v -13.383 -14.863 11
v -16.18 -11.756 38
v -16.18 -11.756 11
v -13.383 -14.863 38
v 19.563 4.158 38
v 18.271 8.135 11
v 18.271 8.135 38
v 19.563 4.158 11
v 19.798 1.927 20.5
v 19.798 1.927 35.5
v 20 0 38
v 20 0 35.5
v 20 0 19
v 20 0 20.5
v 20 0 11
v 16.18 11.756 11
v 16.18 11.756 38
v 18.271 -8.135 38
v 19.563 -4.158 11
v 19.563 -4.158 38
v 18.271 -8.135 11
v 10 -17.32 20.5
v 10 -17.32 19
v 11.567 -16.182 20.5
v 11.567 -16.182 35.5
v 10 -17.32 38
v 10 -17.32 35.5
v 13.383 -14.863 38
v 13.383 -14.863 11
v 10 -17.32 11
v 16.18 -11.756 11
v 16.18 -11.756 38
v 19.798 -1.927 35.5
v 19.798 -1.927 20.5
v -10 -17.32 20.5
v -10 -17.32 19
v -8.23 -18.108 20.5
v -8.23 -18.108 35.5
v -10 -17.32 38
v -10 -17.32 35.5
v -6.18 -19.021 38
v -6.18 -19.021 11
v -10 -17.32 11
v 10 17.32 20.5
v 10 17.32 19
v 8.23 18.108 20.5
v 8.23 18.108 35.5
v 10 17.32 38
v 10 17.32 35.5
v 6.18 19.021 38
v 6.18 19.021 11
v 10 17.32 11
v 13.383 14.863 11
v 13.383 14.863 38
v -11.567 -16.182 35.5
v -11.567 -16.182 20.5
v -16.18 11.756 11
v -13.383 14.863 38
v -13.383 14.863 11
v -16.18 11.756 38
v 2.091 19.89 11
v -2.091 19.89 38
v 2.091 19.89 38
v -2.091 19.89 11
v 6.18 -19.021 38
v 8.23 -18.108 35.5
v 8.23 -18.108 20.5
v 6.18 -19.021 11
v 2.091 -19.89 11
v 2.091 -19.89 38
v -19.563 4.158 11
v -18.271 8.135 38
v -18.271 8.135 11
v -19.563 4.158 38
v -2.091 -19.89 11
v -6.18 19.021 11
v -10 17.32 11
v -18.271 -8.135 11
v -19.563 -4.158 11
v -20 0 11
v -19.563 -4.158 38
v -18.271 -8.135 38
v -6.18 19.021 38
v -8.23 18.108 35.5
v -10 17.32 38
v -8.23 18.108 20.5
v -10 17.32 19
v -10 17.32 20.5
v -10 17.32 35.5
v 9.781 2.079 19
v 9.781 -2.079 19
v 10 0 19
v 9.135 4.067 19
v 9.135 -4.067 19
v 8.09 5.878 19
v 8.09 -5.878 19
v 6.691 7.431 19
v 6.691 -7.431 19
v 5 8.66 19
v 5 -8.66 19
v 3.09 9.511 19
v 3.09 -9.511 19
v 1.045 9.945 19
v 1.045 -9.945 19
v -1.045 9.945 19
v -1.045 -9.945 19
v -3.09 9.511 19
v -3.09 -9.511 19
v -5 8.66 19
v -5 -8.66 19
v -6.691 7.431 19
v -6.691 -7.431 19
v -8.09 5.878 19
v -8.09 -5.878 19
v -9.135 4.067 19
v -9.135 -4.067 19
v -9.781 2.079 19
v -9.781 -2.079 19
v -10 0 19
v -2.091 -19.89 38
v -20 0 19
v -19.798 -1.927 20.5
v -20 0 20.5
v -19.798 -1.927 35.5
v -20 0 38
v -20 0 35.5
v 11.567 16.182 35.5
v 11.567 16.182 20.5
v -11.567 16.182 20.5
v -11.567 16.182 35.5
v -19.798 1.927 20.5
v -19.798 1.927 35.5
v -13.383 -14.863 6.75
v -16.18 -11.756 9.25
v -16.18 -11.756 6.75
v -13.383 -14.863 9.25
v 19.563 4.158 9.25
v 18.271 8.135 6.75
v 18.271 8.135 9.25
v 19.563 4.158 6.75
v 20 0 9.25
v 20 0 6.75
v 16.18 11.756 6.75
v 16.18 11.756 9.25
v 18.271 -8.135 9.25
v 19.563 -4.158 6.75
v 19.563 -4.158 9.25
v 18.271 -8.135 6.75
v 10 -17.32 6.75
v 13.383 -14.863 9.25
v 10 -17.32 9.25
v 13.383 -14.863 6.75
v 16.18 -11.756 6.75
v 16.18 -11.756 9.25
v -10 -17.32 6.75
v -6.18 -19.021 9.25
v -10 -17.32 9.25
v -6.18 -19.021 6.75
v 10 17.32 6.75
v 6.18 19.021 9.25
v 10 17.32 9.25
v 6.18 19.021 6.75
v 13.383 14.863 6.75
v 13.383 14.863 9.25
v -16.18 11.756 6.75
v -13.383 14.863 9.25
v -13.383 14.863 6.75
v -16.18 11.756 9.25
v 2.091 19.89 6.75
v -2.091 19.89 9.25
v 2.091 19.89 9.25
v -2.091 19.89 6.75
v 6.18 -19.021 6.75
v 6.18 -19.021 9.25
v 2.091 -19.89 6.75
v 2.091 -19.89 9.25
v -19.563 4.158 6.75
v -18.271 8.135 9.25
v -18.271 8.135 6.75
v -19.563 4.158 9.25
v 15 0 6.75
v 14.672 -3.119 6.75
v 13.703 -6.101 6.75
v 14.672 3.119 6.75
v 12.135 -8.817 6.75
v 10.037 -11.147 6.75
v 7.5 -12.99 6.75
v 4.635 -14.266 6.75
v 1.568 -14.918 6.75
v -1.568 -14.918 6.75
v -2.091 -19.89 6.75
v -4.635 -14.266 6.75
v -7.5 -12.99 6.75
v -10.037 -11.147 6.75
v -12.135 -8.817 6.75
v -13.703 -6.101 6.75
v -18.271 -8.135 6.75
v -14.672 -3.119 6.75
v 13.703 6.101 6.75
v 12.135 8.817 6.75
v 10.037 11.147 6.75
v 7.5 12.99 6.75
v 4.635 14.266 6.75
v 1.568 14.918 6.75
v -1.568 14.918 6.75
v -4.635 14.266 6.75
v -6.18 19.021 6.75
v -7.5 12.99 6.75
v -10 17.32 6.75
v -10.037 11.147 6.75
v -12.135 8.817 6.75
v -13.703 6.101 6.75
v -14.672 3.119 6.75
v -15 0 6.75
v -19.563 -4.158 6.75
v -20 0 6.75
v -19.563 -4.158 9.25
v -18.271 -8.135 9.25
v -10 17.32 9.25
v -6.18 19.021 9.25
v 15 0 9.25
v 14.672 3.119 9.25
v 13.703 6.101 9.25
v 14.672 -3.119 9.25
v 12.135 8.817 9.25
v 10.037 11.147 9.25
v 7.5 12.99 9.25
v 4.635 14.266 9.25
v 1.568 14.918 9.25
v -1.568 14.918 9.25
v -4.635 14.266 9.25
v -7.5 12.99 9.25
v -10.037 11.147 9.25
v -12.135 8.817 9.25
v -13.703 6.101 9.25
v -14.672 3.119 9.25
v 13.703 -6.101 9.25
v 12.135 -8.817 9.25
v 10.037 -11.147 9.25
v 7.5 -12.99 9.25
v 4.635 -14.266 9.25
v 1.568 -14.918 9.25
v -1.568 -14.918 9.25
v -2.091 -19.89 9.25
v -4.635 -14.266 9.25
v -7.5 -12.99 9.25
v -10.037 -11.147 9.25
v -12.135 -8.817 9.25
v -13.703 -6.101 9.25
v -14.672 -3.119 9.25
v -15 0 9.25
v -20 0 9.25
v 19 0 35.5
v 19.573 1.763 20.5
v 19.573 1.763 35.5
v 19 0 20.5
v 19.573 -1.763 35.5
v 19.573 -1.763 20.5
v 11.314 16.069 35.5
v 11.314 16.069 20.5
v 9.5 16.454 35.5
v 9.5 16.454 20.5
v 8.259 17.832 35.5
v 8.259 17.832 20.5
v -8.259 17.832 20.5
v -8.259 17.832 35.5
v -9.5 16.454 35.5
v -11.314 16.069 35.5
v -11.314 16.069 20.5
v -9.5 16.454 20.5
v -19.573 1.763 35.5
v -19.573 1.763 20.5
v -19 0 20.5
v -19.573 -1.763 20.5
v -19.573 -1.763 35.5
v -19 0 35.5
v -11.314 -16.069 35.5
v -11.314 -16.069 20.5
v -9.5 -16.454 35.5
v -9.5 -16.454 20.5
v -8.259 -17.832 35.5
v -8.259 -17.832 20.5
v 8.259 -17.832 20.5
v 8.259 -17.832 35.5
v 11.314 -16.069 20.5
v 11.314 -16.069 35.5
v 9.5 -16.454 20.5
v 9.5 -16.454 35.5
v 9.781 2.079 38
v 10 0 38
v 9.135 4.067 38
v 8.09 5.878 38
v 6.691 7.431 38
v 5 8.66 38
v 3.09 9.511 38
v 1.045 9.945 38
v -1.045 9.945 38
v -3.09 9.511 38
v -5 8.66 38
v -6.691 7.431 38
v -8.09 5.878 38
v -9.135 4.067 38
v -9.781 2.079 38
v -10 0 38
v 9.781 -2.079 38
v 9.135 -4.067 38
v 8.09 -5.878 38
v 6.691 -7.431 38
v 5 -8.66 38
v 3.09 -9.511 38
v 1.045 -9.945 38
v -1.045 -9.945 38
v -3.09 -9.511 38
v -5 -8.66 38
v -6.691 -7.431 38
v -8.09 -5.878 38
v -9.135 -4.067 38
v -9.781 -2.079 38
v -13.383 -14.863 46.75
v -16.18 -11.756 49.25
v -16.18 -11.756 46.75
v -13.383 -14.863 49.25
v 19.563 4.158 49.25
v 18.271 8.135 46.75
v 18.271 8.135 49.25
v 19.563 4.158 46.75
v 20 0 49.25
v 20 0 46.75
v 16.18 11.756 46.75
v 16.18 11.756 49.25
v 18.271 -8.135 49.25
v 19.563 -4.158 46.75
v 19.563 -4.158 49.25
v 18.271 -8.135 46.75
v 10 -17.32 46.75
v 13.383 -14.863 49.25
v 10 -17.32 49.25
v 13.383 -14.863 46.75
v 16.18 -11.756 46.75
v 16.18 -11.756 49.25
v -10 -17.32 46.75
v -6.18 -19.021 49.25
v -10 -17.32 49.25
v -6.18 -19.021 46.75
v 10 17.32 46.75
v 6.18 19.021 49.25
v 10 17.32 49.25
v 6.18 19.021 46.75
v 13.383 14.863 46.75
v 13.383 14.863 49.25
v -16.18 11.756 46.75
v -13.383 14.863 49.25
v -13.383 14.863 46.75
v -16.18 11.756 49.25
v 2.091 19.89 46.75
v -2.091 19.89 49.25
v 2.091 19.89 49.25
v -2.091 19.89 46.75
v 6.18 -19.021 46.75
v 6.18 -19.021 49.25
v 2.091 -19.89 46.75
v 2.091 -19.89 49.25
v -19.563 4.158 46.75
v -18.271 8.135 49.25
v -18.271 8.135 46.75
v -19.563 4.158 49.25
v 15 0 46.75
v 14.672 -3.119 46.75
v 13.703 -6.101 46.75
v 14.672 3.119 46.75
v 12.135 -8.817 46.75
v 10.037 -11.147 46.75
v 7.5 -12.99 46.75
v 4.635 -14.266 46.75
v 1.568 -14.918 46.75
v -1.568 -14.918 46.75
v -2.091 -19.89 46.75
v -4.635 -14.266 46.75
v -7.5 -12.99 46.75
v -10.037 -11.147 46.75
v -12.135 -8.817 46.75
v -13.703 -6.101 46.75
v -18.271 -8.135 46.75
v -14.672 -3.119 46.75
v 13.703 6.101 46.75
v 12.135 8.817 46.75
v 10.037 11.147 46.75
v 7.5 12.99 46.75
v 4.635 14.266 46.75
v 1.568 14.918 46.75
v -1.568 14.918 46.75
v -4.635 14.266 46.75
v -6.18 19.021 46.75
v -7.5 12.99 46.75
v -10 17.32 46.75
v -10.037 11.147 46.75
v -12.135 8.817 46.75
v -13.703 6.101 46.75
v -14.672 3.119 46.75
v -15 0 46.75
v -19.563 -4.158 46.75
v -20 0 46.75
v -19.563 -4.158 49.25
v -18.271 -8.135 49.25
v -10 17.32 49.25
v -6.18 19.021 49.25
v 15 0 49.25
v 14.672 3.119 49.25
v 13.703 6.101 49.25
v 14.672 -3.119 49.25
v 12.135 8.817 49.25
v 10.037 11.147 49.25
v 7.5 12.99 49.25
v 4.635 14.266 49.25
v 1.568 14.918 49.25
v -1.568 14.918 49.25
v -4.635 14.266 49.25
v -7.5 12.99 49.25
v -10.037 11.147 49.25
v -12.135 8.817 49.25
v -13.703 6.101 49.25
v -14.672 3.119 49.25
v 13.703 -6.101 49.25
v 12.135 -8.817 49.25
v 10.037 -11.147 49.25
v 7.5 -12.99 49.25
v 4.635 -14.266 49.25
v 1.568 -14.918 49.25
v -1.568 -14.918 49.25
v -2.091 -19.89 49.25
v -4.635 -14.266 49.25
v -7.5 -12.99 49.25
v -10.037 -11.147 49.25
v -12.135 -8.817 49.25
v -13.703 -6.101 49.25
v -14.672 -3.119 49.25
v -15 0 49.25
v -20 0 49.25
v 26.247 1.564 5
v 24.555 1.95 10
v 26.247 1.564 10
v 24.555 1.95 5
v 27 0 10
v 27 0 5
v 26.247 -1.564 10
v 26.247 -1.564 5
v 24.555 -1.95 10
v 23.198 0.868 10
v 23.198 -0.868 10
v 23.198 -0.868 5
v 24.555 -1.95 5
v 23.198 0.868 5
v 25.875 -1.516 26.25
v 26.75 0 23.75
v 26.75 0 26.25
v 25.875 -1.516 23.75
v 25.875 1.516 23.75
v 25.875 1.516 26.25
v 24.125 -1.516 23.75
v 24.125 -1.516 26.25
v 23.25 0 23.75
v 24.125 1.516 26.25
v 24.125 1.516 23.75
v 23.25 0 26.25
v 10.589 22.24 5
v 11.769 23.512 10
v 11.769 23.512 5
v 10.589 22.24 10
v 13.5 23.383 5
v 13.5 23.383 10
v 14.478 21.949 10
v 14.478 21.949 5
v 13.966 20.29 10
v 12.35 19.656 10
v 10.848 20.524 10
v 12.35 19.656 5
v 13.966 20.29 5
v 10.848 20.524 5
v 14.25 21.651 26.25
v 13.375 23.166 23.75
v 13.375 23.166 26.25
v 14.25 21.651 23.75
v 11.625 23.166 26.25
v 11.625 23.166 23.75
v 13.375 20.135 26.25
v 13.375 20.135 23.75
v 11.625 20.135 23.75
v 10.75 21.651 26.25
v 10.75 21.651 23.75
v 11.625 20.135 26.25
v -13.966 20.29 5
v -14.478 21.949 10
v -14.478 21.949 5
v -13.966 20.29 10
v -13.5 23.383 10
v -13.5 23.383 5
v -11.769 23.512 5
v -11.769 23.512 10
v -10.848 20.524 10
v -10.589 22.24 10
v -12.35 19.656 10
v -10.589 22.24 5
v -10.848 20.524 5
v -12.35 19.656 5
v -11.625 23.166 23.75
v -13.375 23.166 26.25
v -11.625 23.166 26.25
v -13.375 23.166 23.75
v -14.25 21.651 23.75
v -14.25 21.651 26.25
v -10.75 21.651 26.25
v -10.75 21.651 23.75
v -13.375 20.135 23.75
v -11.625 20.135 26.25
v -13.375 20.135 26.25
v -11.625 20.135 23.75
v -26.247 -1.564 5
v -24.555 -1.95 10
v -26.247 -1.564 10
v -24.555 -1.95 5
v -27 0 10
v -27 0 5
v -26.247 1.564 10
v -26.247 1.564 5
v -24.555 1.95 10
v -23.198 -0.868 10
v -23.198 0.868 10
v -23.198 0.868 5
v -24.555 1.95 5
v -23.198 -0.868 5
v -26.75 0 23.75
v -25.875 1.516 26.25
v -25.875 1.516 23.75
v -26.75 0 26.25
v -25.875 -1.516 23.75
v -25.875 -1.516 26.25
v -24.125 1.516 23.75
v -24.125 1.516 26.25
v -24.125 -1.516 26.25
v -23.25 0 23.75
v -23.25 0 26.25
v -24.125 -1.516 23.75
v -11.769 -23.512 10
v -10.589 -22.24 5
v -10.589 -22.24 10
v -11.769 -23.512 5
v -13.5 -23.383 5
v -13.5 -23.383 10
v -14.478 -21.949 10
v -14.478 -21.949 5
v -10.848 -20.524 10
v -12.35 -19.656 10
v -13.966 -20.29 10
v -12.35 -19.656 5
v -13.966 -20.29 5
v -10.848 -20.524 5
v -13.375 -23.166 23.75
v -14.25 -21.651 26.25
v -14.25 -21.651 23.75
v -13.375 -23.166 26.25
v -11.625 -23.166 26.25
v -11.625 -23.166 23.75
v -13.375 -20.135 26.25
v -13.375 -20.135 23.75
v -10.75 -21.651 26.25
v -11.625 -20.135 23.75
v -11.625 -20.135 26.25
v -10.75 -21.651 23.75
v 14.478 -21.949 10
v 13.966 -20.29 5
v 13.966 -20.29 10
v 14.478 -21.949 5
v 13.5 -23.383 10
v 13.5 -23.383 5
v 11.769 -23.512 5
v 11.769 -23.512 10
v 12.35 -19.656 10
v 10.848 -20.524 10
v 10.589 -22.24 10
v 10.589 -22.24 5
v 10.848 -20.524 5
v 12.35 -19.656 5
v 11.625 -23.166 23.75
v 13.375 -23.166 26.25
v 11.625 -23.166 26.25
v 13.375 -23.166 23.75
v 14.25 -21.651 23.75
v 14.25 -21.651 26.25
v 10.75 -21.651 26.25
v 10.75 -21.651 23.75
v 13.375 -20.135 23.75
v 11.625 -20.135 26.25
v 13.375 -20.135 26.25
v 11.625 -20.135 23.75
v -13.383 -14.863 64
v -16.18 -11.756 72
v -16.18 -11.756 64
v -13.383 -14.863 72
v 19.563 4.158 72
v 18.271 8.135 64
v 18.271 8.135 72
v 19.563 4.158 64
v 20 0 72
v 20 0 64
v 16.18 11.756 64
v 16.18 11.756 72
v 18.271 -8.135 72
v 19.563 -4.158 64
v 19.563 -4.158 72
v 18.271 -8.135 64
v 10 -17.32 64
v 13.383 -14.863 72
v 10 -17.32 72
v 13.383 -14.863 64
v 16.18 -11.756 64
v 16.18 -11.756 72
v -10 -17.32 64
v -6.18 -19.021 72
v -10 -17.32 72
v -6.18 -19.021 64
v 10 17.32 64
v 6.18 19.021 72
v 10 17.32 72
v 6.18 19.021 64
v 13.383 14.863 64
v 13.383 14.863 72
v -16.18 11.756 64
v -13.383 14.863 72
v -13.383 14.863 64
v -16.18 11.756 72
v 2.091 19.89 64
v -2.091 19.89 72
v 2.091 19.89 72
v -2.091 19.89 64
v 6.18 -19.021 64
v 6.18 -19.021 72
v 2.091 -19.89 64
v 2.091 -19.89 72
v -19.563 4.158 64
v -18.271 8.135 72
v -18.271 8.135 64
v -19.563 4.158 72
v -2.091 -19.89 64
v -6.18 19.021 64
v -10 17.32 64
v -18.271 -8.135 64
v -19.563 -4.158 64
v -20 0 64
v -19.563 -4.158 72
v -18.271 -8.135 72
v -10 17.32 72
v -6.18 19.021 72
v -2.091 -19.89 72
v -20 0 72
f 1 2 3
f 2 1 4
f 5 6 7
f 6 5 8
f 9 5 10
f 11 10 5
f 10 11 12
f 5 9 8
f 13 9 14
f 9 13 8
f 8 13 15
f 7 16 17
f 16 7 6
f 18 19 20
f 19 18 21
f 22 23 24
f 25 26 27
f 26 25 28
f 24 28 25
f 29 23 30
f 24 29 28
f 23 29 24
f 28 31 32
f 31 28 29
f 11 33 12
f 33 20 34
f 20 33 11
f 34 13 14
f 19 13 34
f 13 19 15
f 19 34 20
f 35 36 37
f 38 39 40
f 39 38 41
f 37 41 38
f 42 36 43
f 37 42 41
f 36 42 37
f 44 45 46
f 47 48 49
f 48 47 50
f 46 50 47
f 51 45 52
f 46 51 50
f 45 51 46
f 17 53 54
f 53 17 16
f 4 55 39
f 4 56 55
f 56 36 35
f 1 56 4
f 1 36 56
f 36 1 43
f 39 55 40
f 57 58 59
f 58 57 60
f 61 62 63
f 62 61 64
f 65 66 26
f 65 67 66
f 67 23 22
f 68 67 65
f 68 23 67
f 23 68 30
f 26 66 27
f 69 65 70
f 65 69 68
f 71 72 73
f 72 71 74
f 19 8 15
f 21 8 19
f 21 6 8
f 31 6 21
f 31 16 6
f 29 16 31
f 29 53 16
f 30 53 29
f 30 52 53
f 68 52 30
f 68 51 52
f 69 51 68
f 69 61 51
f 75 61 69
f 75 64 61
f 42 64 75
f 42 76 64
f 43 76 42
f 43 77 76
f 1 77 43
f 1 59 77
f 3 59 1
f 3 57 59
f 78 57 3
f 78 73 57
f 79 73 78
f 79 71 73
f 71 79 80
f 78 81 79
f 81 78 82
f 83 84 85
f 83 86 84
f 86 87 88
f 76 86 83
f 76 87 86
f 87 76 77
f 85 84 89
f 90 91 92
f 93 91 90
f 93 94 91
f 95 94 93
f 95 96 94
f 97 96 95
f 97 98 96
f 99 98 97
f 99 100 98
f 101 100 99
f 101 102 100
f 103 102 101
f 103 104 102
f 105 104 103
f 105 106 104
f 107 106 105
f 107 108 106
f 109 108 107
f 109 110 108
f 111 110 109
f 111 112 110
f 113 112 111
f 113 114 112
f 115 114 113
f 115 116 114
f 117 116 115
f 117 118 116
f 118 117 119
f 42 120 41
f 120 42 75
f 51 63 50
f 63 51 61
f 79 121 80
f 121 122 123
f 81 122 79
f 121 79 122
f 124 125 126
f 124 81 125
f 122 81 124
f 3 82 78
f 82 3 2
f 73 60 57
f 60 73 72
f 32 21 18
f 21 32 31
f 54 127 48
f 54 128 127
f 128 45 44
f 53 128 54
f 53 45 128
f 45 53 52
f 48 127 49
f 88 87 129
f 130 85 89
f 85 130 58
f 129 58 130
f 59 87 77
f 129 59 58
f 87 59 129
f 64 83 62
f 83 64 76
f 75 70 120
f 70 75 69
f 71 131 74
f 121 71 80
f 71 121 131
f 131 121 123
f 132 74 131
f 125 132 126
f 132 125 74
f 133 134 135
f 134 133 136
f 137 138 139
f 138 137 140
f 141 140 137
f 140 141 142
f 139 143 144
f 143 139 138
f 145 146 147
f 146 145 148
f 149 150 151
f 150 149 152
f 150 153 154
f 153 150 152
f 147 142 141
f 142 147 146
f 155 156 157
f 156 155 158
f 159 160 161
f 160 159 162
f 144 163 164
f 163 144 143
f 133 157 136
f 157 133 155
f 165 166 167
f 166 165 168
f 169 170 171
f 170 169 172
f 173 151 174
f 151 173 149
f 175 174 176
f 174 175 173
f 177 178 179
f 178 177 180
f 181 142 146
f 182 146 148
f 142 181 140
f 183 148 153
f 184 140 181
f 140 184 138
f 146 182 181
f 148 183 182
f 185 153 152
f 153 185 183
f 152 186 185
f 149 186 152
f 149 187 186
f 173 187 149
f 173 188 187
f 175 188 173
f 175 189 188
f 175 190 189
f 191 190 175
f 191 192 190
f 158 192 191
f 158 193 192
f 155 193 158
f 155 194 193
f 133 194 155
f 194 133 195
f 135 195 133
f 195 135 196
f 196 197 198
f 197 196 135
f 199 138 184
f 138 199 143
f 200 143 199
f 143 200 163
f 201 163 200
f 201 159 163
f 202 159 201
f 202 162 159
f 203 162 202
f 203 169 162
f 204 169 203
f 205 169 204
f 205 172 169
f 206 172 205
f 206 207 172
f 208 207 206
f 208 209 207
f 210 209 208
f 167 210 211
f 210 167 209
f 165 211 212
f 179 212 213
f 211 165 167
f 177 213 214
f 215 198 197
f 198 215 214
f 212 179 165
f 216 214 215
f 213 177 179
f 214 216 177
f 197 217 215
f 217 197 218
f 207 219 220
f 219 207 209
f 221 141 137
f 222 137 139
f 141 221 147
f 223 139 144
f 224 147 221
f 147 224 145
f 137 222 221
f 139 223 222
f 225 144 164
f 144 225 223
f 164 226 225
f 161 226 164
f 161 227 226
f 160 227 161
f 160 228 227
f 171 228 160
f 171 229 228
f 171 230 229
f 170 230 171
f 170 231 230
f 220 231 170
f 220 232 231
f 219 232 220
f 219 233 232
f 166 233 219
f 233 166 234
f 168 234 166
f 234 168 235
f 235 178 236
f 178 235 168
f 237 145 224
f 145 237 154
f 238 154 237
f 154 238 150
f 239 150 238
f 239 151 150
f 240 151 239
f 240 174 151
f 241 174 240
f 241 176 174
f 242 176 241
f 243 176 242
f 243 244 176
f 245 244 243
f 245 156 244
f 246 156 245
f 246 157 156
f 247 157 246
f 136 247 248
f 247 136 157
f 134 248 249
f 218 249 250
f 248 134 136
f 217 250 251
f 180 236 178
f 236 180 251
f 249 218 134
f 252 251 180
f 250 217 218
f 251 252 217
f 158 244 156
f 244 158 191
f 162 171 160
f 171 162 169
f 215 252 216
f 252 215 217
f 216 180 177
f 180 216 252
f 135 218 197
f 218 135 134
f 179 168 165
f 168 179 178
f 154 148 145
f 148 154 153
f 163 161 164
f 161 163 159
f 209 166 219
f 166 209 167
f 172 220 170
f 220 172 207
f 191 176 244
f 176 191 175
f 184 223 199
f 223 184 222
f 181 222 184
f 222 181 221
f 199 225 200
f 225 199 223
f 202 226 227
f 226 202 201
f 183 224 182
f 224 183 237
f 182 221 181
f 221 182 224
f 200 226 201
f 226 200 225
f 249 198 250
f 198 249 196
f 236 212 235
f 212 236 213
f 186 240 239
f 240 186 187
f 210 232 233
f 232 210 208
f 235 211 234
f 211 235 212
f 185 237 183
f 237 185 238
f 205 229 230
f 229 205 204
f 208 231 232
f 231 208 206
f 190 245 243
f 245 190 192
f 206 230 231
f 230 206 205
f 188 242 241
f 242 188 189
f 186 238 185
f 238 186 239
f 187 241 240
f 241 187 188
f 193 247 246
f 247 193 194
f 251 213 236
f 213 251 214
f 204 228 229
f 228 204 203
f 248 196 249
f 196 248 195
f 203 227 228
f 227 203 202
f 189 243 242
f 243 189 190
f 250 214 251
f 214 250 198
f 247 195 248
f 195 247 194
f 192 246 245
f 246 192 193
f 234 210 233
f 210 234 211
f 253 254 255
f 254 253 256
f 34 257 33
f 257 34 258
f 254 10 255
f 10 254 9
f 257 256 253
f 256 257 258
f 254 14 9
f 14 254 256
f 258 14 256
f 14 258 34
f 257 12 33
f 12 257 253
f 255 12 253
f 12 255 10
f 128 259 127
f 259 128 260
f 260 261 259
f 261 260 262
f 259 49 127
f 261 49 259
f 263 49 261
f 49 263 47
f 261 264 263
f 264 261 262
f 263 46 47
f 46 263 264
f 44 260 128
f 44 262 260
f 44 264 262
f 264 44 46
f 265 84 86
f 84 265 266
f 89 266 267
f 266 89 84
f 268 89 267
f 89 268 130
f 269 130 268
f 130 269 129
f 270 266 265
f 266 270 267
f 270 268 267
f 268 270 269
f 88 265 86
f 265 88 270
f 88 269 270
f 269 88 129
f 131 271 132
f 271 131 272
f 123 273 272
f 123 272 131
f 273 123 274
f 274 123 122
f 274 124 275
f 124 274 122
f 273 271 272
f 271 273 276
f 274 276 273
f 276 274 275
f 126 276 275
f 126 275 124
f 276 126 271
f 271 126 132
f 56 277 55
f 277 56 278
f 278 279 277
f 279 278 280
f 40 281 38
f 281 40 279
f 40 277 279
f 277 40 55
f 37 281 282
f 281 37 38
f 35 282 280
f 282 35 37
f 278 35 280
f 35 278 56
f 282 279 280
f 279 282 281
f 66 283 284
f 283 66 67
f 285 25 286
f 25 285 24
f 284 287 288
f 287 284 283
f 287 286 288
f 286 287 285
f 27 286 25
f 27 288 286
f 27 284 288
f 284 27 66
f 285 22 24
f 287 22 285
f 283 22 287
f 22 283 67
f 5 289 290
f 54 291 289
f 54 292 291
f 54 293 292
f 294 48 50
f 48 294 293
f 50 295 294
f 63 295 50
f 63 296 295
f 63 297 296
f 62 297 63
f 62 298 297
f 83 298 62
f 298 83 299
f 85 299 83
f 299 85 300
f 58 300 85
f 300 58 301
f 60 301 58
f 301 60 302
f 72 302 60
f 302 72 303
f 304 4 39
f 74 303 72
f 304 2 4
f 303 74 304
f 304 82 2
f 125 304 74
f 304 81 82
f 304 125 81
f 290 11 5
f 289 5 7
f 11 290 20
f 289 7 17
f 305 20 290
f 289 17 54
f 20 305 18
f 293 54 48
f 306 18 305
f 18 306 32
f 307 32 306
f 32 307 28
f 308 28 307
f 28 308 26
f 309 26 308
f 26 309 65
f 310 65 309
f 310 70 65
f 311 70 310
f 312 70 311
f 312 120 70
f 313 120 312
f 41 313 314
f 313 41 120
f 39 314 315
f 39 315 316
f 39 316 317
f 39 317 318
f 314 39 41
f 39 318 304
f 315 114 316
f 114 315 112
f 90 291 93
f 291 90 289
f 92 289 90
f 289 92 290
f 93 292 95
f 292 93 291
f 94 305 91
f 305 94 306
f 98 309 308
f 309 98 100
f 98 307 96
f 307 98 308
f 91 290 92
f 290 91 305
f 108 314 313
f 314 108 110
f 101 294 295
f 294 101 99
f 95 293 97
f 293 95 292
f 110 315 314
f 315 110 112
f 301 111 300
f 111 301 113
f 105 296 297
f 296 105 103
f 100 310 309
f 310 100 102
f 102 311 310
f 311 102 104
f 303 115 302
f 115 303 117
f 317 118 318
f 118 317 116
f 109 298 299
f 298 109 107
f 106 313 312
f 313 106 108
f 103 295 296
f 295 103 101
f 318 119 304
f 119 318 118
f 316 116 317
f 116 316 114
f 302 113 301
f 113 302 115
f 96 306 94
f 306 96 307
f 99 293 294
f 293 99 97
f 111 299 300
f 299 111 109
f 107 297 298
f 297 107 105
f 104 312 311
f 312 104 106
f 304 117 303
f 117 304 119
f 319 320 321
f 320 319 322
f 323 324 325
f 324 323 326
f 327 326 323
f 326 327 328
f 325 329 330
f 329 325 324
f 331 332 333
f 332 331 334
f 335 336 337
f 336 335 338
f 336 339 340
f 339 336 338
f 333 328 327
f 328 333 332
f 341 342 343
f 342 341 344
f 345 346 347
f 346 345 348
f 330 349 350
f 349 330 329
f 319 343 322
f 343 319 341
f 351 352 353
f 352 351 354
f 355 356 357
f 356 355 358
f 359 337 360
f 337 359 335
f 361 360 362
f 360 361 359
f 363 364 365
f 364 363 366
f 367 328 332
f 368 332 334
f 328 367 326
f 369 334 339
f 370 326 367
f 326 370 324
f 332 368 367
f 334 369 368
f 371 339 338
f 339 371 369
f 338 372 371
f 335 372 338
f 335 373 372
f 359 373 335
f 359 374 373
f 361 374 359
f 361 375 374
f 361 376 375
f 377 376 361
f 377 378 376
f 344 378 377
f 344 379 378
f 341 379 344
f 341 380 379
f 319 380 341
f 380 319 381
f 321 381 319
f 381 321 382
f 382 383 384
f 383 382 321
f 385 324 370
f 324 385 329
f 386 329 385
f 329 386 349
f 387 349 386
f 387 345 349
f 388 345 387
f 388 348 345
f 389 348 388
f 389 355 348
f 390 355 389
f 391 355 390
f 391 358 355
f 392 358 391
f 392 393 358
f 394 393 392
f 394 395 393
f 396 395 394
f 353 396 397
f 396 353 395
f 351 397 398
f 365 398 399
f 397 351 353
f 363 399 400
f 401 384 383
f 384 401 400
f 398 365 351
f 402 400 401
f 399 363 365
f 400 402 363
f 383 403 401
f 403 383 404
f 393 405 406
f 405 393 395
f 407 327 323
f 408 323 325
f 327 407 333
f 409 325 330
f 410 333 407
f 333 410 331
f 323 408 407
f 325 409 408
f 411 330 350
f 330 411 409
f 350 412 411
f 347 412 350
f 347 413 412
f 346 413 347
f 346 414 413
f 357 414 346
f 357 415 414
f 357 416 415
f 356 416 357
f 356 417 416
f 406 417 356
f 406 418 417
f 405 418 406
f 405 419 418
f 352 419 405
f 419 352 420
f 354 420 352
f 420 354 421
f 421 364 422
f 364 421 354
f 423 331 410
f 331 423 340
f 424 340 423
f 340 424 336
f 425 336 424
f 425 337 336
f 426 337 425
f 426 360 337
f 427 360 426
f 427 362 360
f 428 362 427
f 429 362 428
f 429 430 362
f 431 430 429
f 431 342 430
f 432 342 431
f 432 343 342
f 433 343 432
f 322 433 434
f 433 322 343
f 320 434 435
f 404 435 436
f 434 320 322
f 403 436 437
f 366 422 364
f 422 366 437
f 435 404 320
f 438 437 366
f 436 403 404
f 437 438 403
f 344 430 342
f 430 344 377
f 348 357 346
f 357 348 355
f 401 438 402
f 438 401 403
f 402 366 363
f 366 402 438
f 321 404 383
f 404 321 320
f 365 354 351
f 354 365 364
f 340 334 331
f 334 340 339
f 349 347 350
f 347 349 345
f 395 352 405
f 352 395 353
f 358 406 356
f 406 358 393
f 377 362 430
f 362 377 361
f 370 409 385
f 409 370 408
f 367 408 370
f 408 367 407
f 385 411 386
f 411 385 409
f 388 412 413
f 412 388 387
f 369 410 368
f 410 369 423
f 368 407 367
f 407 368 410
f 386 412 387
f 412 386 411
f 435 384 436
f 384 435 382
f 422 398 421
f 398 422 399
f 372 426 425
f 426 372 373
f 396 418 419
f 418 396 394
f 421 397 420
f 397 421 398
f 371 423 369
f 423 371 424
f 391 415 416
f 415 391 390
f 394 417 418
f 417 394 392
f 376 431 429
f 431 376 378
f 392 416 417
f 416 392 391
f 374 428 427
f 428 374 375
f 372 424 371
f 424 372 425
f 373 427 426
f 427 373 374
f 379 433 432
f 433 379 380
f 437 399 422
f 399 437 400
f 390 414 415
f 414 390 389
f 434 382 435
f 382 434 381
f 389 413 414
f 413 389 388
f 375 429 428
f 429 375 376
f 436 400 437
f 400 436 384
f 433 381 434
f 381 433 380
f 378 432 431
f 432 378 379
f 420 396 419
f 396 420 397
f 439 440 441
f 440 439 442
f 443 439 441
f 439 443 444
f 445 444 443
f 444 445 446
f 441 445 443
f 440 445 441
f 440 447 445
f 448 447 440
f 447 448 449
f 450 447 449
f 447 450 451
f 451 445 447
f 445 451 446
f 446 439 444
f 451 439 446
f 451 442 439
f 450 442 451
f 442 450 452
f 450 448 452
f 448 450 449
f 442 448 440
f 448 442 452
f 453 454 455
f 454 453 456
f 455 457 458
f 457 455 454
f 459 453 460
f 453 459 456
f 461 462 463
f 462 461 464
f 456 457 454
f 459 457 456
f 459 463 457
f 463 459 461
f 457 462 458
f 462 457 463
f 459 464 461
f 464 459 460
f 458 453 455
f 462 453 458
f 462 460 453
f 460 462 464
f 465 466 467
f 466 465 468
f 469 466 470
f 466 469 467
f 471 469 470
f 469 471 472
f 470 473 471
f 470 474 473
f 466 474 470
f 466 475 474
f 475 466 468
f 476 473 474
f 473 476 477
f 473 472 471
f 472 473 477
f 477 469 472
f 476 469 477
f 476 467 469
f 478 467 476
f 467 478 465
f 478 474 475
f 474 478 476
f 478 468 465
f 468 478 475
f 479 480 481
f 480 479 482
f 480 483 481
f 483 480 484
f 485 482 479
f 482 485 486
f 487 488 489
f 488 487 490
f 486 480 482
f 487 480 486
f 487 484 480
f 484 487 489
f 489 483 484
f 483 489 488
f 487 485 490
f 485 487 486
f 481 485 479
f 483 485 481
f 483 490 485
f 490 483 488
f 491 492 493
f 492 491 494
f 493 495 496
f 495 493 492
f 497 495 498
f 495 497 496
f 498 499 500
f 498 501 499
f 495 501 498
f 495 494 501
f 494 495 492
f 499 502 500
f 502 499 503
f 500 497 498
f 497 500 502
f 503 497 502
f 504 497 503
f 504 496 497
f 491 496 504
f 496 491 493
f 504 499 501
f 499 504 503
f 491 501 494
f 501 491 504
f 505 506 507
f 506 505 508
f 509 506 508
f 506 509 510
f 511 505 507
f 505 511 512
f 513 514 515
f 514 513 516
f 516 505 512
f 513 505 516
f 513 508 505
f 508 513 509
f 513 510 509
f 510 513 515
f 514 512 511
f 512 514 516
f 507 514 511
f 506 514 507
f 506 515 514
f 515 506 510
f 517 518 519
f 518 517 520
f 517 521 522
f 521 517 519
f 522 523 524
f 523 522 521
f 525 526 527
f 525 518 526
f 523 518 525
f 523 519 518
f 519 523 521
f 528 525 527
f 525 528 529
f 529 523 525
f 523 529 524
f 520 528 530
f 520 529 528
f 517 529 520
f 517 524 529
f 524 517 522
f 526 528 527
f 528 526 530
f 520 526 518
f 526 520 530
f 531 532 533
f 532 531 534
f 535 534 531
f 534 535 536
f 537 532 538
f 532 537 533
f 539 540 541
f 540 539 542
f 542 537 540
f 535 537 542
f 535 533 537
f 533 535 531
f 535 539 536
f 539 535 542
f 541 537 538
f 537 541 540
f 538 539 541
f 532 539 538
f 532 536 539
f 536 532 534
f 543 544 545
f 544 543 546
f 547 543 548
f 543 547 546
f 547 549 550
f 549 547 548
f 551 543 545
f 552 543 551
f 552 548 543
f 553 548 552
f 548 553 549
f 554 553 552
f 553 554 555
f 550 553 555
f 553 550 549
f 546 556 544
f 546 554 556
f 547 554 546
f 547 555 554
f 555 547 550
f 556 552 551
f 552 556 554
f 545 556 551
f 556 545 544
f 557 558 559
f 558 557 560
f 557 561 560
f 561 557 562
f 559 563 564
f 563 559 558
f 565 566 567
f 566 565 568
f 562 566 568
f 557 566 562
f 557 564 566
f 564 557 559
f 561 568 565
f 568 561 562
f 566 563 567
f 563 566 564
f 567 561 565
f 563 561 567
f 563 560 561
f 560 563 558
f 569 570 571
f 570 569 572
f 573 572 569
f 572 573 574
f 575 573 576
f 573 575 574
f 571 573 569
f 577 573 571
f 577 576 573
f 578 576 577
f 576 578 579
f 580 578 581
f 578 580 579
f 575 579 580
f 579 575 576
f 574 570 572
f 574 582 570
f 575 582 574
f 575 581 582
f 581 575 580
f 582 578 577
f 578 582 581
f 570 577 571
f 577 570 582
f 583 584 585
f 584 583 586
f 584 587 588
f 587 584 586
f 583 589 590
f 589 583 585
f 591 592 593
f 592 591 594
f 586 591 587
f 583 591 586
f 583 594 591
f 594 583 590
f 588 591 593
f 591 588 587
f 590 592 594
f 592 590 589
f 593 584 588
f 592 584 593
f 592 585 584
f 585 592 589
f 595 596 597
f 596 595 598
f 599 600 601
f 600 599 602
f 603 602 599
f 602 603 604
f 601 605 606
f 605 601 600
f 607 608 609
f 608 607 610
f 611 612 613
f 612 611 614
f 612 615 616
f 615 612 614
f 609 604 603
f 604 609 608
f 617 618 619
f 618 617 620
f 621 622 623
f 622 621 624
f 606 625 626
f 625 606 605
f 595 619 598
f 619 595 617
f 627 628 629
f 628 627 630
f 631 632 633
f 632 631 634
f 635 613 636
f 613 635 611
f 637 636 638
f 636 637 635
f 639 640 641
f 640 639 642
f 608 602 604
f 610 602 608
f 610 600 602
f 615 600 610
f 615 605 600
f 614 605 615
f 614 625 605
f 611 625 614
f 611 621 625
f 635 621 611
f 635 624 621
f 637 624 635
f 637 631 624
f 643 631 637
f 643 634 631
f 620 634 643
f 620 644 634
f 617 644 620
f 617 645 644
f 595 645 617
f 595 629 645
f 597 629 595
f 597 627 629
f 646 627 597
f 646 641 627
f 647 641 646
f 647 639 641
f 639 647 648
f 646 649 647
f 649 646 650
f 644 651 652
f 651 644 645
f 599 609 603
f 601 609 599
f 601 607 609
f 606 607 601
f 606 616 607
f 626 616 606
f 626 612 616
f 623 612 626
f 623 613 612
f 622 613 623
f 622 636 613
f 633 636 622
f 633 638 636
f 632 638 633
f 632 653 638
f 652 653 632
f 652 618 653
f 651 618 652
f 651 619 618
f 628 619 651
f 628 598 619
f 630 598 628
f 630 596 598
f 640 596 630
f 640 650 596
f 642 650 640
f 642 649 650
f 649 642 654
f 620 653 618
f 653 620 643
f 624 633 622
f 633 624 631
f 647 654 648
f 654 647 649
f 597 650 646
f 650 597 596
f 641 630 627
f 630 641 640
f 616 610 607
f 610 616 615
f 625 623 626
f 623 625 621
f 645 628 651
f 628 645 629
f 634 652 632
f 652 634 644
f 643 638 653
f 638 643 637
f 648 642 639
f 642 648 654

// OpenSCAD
// End Cap Component
module end_cap() {
    difference() {
        rotate([0, 0, 0]) translate([0, 0, 15])
            cylinder(h = 8, r = 20, center = true); // Reduced thickness
        for (i = [0:60:360]) {
            rotate([0, 0, i])
                translate([25, 0, 0])
                    cylinder(h = 20, r = 5, center = true);
        }
        for (i = [0:60:360]) {
            rotate([0, 0, i])
                translate([22, 0, 0])
                    cylinder(h = 12, r = 3, center = true); // Refined grooves
        }
    }
}

// Spacer Ring
module spacer_ring() {
    difference() {
        cylinder(h = 2.5, r = 20, center = true); // Adjusted thickness
        cylinder(h = 5.5, r = 15, center = true);
    }
}

// Central Block Component
module central_block() {
    difference() {
        cylinder(h = 20, r = 20, center = true);
        cylinder(h = 21, r = 10, center = true);
        for (i = [0:60:360]) {
            rotate([0, 0, i])
                translate([25, 0, 0])
                    cylinder(h = 25, r = 5, center = true);
        }
        for (i = [0:60:360]) {
            rotate([0, 0, i])
                translate([22, 0, 0])
                    cylinder(h = 15, r = 3, center = true); // Enhanced symmetry
        }
    }
}

// Bolt
module bolt() {
    difference() {
        cylinder(h = 5, r = 2, round = true, center = false); // Rounded heads
        translate([0, 0, -2]) cylinder(h = 2, r = 2.75, center = false);
    }
}

// Nut
module nut() {
    difference() {
        cylinder(h = 2.5, r = 1.75, center = true); // Reduced size
        rotate([0, 0, 0])
            hull() { // Refined hexagonal shape
                translate([1.5, 0, 0])
                    circle(r = 1.5);
                for (j = [60, 120, 180, 240, 300, 360]) {
                    rotate([0, 0, j])
                        translate([1.5, 0, 0])
                            circle(r = 1.5);
                }
            }
    }
}

// Assembly
module assembly() {
    // Layer 1 - Topmost end cap
    end_cap();
    translate([0, 0, 8])
        spacer_ring();
    translate([0, 0, 28])
        central_block();
    translate([0, 0, 48])
        spacer_ring();
    
    // Layer 5 - Bolts and Nuts
    for (i = [0:60:360]) {
        rotate([0, 0, i])
            translate([25, 0, 5])
                bolt();
        rotate([0, 0, i])
            translate([25, 0, 25])
                nut();
    }
    
    // Layer 6 - Bottommost end cap
    translate([0, 0, 53])
        end_cap();
}

assembly();
